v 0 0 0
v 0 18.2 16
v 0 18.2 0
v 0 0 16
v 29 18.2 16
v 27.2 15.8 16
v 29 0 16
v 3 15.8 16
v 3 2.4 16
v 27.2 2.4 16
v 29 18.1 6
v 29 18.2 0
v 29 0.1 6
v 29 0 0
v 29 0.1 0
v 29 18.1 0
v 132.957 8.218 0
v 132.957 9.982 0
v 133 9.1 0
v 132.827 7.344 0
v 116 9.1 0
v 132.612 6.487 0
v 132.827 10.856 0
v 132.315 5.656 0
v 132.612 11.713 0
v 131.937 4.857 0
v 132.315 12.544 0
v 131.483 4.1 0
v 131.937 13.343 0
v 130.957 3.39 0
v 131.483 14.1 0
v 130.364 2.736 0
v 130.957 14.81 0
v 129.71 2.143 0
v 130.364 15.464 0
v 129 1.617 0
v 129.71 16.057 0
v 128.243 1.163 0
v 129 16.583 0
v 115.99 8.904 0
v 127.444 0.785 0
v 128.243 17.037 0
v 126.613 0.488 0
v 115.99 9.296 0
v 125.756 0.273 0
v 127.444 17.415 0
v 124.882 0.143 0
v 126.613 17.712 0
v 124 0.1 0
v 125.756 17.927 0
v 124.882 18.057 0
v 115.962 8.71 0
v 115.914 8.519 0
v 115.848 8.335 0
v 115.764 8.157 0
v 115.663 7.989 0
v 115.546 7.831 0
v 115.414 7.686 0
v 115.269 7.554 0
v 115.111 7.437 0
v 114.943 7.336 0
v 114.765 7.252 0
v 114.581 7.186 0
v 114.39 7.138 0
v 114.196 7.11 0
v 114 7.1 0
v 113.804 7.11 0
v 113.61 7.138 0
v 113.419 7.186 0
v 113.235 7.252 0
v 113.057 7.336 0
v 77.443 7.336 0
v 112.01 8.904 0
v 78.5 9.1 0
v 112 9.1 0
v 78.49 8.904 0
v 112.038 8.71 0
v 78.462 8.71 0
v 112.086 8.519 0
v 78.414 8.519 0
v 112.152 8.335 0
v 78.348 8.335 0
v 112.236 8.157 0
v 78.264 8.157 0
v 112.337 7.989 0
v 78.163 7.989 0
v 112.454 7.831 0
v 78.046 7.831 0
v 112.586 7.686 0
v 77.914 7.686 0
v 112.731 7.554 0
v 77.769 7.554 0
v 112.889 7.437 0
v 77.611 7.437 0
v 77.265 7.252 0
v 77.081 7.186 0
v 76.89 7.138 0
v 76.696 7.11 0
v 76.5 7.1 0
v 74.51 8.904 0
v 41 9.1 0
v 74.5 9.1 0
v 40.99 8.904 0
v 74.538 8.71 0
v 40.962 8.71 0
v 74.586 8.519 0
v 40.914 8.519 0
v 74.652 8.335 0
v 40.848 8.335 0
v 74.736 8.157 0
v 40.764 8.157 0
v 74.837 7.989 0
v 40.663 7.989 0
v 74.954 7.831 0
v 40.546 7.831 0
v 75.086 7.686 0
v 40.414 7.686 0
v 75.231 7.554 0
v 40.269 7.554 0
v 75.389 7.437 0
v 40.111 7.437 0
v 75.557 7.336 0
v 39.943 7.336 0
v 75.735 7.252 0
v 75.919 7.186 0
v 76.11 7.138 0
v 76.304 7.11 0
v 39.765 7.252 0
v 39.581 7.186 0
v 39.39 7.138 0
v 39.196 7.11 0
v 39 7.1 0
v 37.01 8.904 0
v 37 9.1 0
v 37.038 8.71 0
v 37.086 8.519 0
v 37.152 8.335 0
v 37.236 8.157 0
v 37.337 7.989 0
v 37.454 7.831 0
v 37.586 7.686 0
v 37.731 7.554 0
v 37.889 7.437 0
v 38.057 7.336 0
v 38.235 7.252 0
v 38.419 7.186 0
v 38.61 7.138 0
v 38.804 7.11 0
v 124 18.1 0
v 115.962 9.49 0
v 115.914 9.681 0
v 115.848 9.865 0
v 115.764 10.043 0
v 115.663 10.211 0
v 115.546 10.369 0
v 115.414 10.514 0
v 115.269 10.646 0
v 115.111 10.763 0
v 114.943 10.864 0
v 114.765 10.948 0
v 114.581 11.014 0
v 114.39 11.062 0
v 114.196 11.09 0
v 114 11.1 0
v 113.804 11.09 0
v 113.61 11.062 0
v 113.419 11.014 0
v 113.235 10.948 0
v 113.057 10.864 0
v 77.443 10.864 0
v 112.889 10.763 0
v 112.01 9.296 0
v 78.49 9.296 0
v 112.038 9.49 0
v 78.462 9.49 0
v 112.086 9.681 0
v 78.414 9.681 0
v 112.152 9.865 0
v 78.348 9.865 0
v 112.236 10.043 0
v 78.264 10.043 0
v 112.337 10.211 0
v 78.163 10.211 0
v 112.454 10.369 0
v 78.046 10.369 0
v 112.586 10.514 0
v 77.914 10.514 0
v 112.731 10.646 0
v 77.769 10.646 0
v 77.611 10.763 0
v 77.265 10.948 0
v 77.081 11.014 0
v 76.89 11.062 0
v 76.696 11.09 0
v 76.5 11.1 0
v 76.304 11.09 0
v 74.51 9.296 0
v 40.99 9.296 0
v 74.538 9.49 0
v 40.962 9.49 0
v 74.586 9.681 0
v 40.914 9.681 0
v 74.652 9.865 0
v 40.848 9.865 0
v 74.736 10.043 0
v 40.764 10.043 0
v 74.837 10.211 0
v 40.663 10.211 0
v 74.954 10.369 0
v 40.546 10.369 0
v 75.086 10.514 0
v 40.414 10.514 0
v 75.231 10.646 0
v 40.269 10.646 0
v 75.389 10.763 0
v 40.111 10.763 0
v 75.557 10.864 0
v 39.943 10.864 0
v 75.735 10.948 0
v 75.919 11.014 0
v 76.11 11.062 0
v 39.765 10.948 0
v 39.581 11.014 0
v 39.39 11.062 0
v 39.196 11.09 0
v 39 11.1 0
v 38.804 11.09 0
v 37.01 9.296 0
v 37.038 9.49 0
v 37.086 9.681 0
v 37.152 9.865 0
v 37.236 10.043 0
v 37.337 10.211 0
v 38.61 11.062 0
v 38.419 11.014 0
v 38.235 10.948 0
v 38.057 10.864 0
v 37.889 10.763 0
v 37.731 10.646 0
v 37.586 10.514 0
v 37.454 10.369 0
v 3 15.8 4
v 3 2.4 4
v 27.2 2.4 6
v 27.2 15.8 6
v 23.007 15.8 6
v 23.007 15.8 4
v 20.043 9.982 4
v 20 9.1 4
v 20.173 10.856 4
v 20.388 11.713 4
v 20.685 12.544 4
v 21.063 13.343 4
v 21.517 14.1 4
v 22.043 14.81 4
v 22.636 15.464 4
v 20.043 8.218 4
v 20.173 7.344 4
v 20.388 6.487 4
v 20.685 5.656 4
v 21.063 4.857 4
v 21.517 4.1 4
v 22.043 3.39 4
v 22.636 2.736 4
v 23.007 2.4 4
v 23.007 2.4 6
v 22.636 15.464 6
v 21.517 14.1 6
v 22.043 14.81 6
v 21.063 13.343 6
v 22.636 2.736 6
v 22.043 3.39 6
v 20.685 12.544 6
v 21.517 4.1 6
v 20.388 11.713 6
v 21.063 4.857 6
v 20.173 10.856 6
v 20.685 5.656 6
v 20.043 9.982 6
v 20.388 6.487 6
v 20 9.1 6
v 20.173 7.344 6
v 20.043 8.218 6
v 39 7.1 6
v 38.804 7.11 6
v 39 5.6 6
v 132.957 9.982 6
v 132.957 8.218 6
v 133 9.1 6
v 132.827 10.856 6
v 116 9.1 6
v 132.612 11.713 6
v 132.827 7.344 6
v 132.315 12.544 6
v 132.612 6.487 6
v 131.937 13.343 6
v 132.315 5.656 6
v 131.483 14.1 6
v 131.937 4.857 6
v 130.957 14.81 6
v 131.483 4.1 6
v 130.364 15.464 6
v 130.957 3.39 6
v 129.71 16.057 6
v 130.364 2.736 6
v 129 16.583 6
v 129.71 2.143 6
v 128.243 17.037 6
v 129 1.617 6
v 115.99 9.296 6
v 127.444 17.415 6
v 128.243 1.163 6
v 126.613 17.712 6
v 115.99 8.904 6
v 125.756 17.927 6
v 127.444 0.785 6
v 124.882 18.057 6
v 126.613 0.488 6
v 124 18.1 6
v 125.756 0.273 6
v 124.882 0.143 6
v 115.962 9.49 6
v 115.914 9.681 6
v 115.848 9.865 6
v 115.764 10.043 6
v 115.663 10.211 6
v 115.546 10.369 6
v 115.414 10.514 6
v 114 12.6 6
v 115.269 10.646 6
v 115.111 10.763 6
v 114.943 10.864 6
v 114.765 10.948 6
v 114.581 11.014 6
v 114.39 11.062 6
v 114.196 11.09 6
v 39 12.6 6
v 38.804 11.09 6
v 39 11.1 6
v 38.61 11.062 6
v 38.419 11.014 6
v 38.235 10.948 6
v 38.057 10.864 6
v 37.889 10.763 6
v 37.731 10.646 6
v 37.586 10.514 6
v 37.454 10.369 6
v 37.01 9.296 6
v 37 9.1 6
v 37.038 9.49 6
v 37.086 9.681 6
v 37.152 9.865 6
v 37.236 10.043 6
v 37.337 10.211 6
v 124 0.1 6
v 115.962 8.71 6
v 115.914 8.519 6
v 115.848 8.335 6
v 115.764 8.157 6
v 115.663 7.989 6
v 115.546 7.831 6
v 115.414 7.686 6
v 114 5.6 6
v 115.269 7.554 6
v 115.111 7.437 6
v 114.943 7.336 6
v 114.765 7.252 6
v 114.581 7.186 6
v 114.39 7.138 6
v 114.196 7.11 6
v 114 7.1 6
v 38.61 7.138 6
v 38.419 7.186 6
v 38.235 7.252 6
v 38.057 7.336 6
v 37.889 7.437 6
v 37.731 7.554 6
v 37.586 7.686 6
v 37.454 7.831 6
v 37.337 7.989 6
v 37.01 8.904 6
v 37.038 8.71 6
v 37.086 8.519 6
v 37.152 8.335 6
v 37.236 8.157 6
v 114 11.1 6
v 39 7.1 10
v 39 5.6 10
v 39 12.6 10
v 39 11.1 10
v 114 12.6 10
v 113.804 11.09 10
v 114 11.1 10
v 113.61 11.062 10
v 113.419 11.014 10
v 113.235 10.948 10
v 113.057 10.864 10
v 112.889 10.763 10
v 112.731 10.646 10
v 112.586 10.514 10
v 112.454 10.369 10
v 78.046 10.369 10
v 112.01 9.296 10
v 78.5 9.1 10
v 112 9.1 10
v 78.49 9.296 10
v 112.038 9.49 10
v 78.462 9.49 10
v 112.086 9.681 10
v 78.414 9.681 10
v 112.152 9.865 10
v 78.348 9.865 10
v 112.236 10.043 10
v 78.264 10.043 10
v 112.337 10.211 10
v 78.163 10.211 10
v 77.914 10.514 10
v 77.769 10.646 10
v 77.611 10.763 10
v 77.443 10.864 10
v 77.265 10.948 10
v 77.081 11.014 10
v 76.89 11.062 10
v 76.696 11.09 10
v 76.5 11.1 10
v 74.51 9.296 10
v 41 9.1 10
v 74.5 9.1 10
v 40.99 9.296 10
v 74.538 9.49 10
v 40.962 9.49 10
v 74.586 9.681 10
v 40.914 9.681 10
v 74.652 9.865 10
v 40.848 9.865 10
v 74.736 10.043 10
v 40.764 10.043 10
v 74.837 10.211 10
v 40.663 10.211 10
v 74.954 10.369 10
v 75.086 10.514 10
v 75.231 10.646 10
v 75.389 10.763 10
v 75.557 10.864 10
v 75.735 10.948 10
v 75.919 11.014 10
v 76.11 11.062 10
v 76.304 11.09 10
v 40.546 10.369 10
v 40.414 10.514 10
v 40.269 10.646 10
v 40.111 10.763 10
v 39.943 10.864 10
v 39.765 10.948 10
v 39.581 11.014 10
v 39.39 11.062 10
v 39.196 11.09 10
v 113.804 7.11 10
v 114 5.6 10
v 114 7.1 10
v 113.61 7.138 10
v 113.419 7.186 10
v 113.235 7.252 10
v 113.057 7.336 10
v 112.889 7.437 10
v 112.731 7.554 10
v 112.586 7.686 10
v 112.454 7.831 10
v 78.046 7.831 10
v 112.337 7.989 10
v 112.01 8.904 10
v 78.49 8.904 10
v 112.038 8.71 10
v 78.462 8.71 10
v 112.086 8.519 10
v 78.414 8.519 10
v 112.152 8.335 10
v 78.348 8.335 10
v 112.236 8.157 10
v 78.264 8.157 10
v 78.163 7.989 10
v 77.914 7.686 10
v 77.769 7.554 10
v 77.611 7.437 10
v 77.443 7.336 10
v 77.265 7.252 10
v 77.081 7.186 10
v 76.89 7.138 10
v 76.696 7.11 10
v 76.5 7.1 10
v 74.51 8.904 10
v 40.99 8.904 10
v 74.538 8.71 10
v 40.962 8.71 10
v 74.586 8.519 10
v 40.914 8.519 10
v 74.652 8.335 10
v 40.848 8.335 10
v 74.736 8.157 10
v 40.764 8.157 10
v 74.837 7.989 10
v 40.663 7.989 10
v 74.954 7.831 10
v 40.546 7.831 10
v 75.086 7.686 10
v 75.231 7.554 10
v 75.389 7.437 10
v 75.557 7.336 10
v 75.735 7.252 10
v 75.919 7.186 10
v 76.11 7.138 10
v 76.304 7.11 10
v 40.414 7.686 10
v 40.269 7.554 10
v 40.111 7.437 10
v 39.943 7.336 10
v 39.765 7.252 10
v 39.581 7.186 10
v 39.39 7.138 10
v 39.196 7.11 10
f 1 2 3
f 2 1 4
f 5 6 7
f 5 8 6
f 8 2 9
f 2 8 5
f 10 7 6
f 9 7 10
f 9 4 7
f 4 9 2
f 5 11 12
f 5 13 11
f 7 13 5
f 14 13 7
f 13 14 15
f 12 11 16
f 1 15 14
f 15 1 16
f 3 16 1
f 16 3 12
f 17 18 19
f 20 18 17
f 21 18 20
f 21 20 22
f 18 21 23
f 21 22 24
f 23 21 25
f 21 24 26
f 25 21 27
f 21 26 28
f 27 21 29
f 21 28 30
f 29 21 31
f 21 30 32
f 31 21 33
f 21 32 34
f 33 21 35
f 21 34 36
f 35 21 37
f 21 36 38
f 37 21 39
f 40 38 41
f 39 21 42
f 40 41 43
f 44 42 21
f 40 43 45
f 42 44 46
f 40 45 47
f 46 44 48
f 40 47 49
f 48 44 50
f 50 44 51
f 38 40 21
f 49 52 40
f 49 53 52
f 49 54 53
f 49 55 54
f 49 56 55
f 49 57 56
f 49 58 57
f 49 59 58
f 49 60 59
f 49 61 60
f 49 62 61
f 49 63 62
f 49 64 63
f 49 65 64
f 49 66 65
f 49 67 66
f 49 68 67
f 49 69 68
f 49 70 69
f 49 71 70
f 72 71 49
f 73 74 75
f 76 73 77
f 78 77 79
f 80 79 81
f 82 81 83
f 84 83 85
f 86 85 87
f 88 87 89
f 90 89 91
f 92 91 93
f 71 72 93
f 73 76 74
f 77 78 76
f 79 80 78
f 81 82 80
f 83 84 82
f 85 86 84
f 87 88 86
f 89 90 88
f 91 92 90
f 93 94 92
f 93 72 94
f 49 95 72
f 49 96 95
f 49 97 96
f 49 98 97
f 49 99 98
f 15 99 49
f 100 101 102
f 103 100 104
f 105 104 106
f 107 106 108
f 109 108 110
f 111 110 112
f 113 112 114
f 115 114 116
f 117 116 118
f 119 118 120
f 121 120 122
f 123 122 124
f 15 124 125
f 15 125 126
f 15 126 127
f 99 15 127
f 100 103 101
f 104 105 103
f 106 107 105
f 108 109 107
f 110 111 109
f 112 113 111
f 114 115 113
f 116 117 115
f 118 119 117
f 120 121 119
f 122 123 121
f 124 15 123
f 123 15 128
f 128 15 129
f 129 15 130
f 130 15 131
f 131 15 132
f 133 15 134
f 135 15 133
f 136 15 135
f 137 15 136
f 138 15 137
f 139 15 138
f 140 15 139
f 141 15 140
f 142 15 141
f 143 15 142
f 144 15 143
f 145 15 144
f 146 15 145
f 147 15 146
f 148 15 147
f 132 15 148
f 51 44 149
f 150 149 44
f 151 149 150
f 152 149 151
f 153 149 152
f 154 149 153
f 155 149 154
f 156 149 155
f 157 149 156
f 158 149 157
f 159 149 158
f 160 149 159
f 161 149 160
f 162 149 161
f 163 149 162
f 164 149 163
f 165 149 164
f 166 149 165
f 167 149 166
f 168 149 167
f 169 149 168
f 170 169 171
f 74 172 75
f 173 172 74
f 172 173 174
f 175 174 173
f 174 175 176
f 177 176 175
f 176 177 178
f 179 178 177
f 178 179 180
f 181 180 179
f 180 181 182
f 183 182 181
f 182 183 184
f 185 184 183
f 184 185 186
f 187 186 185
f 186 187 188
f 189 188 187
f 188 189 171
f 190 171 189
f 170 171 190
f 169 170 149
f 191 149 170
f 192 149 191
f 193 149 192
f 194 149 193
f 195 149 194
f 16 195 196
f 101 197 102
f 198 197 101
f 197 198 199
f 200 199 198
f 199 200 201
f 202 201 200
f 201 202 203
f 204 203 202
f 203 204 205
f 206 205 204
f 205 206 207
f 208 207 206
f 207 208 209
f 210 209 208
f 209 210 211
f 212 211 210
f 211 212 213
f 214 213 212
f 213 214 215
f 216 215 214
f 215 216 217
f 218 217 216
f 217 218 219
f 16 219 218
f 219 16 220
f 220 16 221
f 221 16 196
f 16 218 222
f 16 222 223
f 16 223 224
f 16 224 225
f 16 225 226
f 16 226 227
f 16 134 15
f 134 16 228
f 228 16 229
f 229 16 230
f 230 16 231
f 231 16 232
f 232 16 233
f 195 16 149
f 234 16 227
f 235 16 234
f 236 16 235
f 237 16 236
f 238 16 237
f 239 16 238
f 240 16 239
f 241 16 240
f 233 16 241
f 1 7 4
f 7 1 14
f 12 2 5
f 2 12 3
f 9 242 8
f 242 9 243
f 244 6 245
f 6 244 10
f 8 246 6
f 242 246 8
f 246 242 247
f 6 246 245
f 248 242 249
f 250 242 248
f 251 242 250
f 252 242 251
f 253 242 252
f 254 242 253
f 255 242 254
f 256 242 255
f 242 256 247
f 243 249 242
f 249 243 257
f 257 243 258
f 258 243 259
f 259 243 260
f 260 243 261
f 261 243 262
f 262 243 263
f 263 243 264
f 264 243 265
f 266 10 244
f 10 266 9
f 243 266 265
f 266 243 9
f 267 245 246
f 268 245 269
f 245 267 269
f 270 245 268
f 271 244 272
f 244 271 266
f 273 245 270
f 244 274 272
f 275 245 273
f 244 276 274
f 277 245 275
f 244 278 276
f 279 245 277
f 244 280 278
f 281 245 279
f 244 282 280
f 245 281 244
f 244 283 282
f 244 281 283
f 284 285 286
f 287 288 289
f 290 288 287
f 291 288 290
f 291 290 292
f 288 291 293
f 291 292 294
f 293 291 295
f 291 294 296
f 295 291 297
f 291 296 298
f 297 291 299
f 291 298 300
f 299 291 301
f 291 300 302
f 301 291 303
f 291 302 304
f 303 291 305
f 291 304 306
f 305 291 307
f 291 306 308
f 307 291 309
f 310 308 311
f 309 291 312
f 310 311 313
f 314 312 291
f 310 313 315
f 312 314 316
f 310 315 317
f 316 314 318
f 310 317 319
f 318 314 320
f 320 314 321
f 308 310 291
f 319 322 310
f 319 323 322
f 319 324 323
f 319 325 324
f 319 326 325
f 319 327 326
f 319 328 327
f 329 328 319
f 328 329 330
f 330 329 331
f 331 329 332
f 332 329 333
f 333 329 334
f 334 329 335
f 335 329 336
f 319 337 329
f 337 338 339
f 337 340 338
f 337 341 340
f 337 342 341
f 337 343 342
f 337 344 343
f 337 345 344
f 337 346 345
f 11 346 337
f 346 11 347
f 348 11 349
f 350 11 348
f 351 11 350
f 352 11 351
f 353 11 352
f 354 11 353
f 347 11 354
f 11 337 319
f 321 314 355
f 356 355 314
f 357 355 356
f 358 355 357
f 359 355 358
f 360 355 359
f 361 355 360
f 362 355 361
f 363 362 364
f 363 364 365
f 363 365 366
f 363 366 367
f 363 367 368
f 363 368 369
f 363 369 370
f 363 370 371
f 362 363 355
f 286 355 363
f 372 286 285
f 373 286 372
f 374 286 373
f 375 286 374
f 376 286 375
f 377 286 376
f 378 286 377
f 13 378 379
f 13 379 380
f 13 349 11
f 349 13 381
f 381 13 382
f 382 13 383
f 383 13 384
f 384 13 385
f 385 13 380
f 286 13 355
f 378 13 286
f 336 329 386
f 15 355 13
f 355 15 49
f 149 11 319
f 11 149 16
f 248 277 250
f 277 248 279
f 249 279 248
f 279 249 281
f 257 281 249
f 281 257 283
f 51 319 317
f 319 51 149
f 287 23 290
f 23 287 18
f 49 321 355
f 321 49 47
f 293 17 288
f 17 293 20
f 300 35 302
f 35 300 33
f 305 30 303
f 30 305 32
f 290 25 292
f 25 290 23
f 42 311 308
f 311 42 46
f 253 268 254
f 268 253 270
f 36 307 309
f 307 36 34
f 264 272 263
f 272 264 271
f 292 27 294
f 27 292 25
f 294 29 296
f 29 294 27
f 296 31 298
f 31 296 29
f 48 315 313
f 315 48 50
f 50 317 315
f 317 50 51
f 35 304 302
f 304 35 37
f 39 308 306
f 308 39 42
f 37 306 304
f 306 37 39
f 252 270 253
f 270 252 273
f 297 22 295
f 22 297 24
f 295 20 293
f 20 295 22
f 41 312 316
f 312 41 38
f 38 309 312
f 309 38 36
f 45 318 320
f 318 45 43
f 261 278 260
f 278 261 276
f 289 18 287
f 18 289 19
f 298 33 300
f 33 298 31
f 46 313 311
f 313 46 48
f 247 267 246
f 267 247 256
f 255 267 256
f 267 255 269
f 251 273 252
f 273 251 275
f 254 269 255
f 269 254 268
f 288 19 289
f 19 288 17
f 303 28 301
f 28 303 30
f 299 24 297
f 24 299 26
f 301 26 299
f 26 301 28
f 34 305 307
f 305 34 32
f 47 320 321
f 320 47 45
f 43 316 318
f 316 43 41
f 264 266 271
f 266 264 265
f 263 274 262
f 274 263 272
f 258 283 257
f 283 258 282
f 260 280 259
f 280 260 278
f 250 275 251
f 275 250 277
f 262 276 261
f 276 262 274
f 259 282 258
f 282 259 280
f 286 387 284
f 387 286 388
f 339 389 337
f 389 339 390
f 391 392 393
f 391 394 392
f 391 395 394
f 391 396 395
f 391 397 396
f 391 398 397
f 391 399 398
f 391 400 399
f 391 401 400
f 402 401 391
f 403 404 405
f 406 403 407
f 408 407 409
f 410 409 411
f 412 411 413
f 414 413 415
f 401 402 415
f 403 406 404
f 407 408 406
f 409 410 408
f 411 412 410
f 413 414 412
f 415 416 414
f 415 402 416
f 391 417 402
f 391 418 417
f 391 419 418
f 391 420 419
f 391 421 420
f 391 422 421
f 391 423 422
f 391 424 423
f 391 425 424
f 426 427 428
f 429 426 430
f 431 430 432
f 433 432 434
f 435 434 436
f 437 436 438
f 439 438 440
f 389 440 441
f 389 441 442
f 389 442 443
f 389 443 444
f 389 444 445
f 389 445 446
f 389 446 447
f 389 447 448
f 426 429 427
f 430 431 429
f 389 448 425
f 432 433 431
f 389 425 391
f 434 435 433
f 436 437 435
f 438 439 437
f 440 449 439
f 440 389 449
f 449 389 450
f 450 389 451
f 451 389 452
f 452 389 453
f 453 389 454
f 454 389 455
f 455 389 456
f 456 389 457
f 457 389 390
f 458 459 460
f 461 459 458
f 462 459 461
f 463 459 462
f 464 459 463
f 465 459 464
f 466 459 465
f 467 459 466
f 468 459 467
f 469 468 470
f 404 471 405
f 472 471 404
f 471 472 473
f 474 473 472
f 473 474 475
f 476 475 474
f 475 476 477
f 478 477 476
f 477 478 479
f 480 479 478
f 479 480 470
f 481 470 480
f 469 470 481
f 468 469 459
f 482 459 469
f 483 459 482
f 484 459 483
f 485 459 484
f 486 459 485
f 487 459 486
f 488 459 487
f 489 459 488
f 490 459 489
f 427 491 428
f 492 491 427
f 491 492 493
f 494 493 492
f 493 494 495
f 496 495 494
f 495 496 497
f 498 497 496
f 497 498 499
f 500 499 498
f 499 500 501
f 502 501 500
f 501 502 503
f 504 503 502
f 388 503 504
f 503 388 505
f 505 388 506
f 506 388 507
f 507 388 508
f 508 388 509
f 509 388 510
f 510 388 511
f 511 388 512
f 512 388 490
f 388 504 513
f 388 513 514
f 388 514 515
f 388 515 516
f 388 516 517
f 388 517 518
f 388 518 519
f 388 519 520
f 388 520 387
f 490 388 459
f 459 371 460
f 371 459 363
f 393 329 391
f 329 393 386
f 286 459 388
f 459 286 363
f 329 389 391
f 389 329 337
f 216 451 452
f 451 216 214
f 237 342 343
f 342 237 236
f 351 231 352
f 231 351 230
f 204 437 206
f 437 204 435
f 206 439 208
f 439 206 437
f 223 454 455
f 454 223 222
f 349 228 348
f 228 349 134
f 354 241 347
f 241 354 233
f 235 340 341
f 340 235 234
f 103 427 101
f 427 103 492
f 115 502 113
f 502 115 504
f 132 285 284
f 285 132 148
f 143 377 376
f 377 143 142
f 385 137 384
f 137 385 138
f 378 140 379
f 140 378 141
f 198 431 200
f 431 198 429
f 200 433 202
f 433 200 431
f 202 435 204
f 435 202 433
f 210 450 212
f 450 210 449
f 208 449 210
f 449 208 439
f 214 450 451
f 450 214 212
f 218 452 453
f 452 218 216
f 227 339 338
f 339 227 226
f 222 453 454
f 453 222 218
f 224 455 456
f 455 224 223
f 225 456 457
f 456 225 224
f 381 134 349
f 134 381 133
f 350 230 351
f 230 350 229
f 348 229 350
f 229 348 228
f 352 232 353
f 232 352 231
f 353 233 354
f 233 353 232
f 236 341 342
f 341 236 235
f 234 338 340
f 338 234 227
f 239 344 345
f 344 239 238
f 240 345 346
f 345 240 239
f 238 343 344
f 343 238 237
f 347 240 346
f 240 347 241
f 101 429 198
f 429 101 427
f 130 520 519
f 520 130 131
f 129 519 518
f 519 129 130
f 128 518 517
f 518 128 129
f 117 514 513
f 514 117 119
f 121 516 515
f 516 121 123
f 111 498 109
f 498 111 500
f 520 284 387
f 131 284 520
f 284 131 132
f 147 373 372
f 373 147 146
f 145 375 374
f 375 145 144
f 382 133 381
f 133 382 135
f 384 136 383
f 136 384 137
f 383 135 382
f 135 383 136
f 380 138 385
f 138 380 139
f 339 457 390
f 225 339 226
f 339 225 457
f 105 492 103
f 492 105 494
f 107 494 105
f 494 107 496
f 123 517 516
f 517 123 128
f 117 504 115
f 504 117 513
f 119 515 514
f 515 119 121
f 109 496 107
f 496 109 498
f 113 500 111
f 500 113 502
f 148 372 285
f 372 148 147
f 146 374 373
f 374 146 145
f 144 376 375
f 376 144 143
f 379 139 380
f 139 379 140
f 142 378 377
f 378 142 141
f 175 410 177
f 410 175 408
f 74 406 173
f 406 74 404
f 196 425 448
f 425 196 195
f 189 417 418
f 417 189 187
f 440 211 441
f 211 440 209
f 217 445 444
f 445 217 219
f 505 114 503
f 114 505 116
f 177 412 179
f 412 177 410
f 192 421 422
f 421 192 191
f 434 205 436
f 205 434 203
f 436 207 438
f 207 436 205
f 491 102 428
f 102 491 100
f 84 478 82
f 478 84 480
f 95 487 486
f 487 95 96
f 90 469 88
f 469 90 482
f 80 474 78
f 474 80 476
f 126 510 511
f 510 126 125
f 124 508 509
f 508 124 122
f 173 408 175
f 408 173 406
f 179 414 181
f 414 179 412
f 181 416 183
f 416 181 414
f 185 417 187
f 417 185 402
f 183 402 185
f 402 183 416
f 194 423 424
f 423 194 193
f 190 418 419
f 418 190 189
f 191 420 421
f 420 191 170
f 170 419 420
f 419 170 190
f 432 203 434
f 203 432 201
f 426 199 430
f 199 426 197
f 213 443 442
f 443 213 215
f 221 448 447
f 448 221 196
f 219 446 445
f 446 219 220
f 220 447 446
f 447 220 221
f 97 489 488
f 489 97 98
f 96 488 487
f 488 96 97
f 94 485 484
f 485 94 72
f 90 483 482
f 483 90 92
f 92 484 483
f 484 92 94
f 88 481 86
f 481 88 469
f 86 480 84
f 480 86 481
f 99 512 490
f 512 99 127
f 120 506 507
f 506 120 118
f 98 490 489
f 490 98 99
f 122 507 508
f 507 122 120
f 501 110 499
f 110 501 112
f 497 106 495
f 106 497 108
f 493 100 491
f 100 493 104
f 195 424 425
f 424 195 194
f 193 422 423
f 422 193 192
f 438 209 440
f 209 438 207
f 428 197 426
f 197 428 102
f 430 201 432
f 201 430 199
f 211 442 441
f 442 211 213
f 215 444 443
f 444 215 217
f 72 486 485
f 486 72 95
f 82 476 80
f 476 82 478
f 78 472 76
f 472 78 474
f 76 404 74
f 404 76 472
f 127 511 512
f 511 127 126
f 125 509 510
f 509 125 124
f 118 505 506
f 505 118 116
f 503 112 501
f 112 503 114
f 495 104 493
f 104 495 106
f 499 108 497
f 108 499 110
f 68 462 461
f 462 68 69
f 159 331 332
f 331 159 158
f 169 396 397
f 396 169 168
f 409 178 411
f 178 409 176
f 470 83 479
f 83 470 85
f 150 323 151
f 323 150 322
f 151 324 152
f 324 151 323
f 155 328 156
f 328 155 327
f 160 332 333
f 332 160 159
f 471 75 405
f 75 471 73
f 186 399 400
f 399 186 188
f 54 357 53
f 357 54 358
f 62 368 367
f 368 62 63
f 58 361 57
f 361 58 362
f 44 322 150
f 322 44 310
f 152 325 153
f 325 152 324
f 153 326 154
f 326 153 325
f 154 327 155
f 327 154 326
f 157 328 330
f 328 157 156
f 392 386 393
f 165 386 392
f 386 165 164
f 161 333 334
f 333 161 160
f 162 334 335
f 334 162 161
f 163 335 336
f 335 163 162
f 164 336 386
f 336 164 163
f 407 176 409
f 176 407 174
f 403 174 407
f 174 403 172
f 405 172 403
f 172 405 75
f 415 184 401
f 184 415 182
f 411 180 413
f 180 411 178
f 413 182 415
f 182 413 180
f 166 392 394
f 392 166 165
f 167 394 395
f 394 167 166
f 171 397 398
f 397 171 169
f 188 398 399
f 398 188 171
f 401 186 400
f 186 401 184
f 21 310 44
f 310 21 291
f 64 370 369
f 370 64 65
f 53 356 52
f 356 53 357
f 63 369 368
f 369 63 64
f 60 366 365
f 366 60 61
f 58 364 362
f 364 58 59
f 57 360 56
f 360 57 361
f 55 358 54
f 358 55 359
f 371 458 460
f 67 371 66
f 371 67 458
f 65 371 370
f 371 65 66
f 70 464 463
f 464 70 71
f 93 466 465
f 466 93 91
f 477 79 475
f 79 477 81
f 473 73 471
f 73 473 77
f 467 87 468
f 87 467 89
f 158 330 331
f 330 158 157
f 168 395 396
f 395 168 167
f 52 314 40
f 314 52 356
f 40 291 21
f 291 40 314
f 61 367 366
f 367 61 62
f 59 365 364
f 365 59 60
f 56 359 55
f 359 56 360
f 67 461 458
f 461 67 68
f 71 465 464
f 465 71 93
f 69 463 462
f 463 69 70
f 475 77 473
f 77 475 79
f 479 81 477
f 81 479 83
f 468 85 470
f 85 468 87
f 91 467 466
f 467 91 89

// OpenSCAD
$fn = 64;

// ======================================================
// SERVO LINK MODEL - ELO ROBÓTICO COM SUPORTE PARA SERVO 9g
// Projeto: DataBurn / SpaceFire Monitor
// Unidades em mm
// ======================================================

// ---------- PARÂMETROS DO SERVO 9g ----------
servo_len = 23;
servo_w   = 12.2;
servo_h   = 24;
clearance = 0.6;

// ---------- PARÂMETROS DO SUPORTE ----------
wall   = 3;
base_t = 4;

// ---------- PARÂMETROS DO ELO ----------
link_len = 95;       // comprimento total do elo frontal
link_w   = 18;       // largura do elo
link_t   = 6;        // espessura do elo

end_radius = link_w / 2;

hole_d = 4;          // furo de articulação
hole_margin = 10;    // distância do furo até a extremidade

rib_w = 7;           // largura da nervura central
rib_h = 4;           // altura extra da nervura

// ---------- MEDIDAS DERIVADAS ----------
servo_box_len = servo_len + 2 * wall;
servo_box_w   = servo_w + 2 * wall;
servo_box_h   = servo_h / 2 + base_t;

total_w = max(servo_box_w, link_w);
pocket_len = servo_len + 2 * clearance;
pocket_w   = servo_w + 2 * clearance;

// ======================================================
// MÓDULOS
// ======================================================

module rounded_link_2d(length, width) {
    hull() {
        translate([0, width / 2])
            circle(r = width / 2);

        translate([length, width / 2])
            circle(r = width / 2);
    }
}

module robotic_link() {
    translate([servo_box_len, (total_w - link_w) / 2, 0])
        linear_extrude(height = link_t)
            rounded_link_2d(link_len, link_w);
}

module central_rib() {
    translate([
        servo_box_len + 10,
        (total_w - rib_w) / 2,
        link_t
    ])
        cube([link_len - 20, rib_w, rib_h]);
}

module servo_mount() {
    difference() {
        // caixa de suporte do servo
        cube([servo_box_len, total_w, servo_box_h]);

        // cavidade de encaixe do servo
        translate([wall, (total_w - pocket_w) / 2, base_t])
            cube([pocket_len, pocket_w, servo_h]);
    }
}

module connector_neck() {
    // transição entre suporte do servo e elo
    translate([servo_box_len - 2, (total_w - link_w) / 2, 0])
        cube([8, link_w, link_t]);
}

// ======================================================
// PEÇA FINAL
// ======================================================

difference() {
    union() {
        servo_mount();
        connector_neck();
        robotic_link();
        central_rib();
    }

    // furo próximo ao suporte do servo
    translate([
        servo_box_len + hole_margin,
        total_w / 2,
        -1
    ])
        cylinder(h = link_t + rib_h + 2, d = hole_d);

    // furo central
    translate([
        servo_box_len + link_len / 2,
        total_w / 2,
        -1
    ])
        cylinder(h = link_t + rib_h + 2, d = hole_d);

    // furo na ponta do elo
    translate([
        servo_box_len + link_len - hole_margin,
        total_w / 2,
        -1
    ])
        cylinder(h = link_t + rib_h + 2, d = hole_d);
}
